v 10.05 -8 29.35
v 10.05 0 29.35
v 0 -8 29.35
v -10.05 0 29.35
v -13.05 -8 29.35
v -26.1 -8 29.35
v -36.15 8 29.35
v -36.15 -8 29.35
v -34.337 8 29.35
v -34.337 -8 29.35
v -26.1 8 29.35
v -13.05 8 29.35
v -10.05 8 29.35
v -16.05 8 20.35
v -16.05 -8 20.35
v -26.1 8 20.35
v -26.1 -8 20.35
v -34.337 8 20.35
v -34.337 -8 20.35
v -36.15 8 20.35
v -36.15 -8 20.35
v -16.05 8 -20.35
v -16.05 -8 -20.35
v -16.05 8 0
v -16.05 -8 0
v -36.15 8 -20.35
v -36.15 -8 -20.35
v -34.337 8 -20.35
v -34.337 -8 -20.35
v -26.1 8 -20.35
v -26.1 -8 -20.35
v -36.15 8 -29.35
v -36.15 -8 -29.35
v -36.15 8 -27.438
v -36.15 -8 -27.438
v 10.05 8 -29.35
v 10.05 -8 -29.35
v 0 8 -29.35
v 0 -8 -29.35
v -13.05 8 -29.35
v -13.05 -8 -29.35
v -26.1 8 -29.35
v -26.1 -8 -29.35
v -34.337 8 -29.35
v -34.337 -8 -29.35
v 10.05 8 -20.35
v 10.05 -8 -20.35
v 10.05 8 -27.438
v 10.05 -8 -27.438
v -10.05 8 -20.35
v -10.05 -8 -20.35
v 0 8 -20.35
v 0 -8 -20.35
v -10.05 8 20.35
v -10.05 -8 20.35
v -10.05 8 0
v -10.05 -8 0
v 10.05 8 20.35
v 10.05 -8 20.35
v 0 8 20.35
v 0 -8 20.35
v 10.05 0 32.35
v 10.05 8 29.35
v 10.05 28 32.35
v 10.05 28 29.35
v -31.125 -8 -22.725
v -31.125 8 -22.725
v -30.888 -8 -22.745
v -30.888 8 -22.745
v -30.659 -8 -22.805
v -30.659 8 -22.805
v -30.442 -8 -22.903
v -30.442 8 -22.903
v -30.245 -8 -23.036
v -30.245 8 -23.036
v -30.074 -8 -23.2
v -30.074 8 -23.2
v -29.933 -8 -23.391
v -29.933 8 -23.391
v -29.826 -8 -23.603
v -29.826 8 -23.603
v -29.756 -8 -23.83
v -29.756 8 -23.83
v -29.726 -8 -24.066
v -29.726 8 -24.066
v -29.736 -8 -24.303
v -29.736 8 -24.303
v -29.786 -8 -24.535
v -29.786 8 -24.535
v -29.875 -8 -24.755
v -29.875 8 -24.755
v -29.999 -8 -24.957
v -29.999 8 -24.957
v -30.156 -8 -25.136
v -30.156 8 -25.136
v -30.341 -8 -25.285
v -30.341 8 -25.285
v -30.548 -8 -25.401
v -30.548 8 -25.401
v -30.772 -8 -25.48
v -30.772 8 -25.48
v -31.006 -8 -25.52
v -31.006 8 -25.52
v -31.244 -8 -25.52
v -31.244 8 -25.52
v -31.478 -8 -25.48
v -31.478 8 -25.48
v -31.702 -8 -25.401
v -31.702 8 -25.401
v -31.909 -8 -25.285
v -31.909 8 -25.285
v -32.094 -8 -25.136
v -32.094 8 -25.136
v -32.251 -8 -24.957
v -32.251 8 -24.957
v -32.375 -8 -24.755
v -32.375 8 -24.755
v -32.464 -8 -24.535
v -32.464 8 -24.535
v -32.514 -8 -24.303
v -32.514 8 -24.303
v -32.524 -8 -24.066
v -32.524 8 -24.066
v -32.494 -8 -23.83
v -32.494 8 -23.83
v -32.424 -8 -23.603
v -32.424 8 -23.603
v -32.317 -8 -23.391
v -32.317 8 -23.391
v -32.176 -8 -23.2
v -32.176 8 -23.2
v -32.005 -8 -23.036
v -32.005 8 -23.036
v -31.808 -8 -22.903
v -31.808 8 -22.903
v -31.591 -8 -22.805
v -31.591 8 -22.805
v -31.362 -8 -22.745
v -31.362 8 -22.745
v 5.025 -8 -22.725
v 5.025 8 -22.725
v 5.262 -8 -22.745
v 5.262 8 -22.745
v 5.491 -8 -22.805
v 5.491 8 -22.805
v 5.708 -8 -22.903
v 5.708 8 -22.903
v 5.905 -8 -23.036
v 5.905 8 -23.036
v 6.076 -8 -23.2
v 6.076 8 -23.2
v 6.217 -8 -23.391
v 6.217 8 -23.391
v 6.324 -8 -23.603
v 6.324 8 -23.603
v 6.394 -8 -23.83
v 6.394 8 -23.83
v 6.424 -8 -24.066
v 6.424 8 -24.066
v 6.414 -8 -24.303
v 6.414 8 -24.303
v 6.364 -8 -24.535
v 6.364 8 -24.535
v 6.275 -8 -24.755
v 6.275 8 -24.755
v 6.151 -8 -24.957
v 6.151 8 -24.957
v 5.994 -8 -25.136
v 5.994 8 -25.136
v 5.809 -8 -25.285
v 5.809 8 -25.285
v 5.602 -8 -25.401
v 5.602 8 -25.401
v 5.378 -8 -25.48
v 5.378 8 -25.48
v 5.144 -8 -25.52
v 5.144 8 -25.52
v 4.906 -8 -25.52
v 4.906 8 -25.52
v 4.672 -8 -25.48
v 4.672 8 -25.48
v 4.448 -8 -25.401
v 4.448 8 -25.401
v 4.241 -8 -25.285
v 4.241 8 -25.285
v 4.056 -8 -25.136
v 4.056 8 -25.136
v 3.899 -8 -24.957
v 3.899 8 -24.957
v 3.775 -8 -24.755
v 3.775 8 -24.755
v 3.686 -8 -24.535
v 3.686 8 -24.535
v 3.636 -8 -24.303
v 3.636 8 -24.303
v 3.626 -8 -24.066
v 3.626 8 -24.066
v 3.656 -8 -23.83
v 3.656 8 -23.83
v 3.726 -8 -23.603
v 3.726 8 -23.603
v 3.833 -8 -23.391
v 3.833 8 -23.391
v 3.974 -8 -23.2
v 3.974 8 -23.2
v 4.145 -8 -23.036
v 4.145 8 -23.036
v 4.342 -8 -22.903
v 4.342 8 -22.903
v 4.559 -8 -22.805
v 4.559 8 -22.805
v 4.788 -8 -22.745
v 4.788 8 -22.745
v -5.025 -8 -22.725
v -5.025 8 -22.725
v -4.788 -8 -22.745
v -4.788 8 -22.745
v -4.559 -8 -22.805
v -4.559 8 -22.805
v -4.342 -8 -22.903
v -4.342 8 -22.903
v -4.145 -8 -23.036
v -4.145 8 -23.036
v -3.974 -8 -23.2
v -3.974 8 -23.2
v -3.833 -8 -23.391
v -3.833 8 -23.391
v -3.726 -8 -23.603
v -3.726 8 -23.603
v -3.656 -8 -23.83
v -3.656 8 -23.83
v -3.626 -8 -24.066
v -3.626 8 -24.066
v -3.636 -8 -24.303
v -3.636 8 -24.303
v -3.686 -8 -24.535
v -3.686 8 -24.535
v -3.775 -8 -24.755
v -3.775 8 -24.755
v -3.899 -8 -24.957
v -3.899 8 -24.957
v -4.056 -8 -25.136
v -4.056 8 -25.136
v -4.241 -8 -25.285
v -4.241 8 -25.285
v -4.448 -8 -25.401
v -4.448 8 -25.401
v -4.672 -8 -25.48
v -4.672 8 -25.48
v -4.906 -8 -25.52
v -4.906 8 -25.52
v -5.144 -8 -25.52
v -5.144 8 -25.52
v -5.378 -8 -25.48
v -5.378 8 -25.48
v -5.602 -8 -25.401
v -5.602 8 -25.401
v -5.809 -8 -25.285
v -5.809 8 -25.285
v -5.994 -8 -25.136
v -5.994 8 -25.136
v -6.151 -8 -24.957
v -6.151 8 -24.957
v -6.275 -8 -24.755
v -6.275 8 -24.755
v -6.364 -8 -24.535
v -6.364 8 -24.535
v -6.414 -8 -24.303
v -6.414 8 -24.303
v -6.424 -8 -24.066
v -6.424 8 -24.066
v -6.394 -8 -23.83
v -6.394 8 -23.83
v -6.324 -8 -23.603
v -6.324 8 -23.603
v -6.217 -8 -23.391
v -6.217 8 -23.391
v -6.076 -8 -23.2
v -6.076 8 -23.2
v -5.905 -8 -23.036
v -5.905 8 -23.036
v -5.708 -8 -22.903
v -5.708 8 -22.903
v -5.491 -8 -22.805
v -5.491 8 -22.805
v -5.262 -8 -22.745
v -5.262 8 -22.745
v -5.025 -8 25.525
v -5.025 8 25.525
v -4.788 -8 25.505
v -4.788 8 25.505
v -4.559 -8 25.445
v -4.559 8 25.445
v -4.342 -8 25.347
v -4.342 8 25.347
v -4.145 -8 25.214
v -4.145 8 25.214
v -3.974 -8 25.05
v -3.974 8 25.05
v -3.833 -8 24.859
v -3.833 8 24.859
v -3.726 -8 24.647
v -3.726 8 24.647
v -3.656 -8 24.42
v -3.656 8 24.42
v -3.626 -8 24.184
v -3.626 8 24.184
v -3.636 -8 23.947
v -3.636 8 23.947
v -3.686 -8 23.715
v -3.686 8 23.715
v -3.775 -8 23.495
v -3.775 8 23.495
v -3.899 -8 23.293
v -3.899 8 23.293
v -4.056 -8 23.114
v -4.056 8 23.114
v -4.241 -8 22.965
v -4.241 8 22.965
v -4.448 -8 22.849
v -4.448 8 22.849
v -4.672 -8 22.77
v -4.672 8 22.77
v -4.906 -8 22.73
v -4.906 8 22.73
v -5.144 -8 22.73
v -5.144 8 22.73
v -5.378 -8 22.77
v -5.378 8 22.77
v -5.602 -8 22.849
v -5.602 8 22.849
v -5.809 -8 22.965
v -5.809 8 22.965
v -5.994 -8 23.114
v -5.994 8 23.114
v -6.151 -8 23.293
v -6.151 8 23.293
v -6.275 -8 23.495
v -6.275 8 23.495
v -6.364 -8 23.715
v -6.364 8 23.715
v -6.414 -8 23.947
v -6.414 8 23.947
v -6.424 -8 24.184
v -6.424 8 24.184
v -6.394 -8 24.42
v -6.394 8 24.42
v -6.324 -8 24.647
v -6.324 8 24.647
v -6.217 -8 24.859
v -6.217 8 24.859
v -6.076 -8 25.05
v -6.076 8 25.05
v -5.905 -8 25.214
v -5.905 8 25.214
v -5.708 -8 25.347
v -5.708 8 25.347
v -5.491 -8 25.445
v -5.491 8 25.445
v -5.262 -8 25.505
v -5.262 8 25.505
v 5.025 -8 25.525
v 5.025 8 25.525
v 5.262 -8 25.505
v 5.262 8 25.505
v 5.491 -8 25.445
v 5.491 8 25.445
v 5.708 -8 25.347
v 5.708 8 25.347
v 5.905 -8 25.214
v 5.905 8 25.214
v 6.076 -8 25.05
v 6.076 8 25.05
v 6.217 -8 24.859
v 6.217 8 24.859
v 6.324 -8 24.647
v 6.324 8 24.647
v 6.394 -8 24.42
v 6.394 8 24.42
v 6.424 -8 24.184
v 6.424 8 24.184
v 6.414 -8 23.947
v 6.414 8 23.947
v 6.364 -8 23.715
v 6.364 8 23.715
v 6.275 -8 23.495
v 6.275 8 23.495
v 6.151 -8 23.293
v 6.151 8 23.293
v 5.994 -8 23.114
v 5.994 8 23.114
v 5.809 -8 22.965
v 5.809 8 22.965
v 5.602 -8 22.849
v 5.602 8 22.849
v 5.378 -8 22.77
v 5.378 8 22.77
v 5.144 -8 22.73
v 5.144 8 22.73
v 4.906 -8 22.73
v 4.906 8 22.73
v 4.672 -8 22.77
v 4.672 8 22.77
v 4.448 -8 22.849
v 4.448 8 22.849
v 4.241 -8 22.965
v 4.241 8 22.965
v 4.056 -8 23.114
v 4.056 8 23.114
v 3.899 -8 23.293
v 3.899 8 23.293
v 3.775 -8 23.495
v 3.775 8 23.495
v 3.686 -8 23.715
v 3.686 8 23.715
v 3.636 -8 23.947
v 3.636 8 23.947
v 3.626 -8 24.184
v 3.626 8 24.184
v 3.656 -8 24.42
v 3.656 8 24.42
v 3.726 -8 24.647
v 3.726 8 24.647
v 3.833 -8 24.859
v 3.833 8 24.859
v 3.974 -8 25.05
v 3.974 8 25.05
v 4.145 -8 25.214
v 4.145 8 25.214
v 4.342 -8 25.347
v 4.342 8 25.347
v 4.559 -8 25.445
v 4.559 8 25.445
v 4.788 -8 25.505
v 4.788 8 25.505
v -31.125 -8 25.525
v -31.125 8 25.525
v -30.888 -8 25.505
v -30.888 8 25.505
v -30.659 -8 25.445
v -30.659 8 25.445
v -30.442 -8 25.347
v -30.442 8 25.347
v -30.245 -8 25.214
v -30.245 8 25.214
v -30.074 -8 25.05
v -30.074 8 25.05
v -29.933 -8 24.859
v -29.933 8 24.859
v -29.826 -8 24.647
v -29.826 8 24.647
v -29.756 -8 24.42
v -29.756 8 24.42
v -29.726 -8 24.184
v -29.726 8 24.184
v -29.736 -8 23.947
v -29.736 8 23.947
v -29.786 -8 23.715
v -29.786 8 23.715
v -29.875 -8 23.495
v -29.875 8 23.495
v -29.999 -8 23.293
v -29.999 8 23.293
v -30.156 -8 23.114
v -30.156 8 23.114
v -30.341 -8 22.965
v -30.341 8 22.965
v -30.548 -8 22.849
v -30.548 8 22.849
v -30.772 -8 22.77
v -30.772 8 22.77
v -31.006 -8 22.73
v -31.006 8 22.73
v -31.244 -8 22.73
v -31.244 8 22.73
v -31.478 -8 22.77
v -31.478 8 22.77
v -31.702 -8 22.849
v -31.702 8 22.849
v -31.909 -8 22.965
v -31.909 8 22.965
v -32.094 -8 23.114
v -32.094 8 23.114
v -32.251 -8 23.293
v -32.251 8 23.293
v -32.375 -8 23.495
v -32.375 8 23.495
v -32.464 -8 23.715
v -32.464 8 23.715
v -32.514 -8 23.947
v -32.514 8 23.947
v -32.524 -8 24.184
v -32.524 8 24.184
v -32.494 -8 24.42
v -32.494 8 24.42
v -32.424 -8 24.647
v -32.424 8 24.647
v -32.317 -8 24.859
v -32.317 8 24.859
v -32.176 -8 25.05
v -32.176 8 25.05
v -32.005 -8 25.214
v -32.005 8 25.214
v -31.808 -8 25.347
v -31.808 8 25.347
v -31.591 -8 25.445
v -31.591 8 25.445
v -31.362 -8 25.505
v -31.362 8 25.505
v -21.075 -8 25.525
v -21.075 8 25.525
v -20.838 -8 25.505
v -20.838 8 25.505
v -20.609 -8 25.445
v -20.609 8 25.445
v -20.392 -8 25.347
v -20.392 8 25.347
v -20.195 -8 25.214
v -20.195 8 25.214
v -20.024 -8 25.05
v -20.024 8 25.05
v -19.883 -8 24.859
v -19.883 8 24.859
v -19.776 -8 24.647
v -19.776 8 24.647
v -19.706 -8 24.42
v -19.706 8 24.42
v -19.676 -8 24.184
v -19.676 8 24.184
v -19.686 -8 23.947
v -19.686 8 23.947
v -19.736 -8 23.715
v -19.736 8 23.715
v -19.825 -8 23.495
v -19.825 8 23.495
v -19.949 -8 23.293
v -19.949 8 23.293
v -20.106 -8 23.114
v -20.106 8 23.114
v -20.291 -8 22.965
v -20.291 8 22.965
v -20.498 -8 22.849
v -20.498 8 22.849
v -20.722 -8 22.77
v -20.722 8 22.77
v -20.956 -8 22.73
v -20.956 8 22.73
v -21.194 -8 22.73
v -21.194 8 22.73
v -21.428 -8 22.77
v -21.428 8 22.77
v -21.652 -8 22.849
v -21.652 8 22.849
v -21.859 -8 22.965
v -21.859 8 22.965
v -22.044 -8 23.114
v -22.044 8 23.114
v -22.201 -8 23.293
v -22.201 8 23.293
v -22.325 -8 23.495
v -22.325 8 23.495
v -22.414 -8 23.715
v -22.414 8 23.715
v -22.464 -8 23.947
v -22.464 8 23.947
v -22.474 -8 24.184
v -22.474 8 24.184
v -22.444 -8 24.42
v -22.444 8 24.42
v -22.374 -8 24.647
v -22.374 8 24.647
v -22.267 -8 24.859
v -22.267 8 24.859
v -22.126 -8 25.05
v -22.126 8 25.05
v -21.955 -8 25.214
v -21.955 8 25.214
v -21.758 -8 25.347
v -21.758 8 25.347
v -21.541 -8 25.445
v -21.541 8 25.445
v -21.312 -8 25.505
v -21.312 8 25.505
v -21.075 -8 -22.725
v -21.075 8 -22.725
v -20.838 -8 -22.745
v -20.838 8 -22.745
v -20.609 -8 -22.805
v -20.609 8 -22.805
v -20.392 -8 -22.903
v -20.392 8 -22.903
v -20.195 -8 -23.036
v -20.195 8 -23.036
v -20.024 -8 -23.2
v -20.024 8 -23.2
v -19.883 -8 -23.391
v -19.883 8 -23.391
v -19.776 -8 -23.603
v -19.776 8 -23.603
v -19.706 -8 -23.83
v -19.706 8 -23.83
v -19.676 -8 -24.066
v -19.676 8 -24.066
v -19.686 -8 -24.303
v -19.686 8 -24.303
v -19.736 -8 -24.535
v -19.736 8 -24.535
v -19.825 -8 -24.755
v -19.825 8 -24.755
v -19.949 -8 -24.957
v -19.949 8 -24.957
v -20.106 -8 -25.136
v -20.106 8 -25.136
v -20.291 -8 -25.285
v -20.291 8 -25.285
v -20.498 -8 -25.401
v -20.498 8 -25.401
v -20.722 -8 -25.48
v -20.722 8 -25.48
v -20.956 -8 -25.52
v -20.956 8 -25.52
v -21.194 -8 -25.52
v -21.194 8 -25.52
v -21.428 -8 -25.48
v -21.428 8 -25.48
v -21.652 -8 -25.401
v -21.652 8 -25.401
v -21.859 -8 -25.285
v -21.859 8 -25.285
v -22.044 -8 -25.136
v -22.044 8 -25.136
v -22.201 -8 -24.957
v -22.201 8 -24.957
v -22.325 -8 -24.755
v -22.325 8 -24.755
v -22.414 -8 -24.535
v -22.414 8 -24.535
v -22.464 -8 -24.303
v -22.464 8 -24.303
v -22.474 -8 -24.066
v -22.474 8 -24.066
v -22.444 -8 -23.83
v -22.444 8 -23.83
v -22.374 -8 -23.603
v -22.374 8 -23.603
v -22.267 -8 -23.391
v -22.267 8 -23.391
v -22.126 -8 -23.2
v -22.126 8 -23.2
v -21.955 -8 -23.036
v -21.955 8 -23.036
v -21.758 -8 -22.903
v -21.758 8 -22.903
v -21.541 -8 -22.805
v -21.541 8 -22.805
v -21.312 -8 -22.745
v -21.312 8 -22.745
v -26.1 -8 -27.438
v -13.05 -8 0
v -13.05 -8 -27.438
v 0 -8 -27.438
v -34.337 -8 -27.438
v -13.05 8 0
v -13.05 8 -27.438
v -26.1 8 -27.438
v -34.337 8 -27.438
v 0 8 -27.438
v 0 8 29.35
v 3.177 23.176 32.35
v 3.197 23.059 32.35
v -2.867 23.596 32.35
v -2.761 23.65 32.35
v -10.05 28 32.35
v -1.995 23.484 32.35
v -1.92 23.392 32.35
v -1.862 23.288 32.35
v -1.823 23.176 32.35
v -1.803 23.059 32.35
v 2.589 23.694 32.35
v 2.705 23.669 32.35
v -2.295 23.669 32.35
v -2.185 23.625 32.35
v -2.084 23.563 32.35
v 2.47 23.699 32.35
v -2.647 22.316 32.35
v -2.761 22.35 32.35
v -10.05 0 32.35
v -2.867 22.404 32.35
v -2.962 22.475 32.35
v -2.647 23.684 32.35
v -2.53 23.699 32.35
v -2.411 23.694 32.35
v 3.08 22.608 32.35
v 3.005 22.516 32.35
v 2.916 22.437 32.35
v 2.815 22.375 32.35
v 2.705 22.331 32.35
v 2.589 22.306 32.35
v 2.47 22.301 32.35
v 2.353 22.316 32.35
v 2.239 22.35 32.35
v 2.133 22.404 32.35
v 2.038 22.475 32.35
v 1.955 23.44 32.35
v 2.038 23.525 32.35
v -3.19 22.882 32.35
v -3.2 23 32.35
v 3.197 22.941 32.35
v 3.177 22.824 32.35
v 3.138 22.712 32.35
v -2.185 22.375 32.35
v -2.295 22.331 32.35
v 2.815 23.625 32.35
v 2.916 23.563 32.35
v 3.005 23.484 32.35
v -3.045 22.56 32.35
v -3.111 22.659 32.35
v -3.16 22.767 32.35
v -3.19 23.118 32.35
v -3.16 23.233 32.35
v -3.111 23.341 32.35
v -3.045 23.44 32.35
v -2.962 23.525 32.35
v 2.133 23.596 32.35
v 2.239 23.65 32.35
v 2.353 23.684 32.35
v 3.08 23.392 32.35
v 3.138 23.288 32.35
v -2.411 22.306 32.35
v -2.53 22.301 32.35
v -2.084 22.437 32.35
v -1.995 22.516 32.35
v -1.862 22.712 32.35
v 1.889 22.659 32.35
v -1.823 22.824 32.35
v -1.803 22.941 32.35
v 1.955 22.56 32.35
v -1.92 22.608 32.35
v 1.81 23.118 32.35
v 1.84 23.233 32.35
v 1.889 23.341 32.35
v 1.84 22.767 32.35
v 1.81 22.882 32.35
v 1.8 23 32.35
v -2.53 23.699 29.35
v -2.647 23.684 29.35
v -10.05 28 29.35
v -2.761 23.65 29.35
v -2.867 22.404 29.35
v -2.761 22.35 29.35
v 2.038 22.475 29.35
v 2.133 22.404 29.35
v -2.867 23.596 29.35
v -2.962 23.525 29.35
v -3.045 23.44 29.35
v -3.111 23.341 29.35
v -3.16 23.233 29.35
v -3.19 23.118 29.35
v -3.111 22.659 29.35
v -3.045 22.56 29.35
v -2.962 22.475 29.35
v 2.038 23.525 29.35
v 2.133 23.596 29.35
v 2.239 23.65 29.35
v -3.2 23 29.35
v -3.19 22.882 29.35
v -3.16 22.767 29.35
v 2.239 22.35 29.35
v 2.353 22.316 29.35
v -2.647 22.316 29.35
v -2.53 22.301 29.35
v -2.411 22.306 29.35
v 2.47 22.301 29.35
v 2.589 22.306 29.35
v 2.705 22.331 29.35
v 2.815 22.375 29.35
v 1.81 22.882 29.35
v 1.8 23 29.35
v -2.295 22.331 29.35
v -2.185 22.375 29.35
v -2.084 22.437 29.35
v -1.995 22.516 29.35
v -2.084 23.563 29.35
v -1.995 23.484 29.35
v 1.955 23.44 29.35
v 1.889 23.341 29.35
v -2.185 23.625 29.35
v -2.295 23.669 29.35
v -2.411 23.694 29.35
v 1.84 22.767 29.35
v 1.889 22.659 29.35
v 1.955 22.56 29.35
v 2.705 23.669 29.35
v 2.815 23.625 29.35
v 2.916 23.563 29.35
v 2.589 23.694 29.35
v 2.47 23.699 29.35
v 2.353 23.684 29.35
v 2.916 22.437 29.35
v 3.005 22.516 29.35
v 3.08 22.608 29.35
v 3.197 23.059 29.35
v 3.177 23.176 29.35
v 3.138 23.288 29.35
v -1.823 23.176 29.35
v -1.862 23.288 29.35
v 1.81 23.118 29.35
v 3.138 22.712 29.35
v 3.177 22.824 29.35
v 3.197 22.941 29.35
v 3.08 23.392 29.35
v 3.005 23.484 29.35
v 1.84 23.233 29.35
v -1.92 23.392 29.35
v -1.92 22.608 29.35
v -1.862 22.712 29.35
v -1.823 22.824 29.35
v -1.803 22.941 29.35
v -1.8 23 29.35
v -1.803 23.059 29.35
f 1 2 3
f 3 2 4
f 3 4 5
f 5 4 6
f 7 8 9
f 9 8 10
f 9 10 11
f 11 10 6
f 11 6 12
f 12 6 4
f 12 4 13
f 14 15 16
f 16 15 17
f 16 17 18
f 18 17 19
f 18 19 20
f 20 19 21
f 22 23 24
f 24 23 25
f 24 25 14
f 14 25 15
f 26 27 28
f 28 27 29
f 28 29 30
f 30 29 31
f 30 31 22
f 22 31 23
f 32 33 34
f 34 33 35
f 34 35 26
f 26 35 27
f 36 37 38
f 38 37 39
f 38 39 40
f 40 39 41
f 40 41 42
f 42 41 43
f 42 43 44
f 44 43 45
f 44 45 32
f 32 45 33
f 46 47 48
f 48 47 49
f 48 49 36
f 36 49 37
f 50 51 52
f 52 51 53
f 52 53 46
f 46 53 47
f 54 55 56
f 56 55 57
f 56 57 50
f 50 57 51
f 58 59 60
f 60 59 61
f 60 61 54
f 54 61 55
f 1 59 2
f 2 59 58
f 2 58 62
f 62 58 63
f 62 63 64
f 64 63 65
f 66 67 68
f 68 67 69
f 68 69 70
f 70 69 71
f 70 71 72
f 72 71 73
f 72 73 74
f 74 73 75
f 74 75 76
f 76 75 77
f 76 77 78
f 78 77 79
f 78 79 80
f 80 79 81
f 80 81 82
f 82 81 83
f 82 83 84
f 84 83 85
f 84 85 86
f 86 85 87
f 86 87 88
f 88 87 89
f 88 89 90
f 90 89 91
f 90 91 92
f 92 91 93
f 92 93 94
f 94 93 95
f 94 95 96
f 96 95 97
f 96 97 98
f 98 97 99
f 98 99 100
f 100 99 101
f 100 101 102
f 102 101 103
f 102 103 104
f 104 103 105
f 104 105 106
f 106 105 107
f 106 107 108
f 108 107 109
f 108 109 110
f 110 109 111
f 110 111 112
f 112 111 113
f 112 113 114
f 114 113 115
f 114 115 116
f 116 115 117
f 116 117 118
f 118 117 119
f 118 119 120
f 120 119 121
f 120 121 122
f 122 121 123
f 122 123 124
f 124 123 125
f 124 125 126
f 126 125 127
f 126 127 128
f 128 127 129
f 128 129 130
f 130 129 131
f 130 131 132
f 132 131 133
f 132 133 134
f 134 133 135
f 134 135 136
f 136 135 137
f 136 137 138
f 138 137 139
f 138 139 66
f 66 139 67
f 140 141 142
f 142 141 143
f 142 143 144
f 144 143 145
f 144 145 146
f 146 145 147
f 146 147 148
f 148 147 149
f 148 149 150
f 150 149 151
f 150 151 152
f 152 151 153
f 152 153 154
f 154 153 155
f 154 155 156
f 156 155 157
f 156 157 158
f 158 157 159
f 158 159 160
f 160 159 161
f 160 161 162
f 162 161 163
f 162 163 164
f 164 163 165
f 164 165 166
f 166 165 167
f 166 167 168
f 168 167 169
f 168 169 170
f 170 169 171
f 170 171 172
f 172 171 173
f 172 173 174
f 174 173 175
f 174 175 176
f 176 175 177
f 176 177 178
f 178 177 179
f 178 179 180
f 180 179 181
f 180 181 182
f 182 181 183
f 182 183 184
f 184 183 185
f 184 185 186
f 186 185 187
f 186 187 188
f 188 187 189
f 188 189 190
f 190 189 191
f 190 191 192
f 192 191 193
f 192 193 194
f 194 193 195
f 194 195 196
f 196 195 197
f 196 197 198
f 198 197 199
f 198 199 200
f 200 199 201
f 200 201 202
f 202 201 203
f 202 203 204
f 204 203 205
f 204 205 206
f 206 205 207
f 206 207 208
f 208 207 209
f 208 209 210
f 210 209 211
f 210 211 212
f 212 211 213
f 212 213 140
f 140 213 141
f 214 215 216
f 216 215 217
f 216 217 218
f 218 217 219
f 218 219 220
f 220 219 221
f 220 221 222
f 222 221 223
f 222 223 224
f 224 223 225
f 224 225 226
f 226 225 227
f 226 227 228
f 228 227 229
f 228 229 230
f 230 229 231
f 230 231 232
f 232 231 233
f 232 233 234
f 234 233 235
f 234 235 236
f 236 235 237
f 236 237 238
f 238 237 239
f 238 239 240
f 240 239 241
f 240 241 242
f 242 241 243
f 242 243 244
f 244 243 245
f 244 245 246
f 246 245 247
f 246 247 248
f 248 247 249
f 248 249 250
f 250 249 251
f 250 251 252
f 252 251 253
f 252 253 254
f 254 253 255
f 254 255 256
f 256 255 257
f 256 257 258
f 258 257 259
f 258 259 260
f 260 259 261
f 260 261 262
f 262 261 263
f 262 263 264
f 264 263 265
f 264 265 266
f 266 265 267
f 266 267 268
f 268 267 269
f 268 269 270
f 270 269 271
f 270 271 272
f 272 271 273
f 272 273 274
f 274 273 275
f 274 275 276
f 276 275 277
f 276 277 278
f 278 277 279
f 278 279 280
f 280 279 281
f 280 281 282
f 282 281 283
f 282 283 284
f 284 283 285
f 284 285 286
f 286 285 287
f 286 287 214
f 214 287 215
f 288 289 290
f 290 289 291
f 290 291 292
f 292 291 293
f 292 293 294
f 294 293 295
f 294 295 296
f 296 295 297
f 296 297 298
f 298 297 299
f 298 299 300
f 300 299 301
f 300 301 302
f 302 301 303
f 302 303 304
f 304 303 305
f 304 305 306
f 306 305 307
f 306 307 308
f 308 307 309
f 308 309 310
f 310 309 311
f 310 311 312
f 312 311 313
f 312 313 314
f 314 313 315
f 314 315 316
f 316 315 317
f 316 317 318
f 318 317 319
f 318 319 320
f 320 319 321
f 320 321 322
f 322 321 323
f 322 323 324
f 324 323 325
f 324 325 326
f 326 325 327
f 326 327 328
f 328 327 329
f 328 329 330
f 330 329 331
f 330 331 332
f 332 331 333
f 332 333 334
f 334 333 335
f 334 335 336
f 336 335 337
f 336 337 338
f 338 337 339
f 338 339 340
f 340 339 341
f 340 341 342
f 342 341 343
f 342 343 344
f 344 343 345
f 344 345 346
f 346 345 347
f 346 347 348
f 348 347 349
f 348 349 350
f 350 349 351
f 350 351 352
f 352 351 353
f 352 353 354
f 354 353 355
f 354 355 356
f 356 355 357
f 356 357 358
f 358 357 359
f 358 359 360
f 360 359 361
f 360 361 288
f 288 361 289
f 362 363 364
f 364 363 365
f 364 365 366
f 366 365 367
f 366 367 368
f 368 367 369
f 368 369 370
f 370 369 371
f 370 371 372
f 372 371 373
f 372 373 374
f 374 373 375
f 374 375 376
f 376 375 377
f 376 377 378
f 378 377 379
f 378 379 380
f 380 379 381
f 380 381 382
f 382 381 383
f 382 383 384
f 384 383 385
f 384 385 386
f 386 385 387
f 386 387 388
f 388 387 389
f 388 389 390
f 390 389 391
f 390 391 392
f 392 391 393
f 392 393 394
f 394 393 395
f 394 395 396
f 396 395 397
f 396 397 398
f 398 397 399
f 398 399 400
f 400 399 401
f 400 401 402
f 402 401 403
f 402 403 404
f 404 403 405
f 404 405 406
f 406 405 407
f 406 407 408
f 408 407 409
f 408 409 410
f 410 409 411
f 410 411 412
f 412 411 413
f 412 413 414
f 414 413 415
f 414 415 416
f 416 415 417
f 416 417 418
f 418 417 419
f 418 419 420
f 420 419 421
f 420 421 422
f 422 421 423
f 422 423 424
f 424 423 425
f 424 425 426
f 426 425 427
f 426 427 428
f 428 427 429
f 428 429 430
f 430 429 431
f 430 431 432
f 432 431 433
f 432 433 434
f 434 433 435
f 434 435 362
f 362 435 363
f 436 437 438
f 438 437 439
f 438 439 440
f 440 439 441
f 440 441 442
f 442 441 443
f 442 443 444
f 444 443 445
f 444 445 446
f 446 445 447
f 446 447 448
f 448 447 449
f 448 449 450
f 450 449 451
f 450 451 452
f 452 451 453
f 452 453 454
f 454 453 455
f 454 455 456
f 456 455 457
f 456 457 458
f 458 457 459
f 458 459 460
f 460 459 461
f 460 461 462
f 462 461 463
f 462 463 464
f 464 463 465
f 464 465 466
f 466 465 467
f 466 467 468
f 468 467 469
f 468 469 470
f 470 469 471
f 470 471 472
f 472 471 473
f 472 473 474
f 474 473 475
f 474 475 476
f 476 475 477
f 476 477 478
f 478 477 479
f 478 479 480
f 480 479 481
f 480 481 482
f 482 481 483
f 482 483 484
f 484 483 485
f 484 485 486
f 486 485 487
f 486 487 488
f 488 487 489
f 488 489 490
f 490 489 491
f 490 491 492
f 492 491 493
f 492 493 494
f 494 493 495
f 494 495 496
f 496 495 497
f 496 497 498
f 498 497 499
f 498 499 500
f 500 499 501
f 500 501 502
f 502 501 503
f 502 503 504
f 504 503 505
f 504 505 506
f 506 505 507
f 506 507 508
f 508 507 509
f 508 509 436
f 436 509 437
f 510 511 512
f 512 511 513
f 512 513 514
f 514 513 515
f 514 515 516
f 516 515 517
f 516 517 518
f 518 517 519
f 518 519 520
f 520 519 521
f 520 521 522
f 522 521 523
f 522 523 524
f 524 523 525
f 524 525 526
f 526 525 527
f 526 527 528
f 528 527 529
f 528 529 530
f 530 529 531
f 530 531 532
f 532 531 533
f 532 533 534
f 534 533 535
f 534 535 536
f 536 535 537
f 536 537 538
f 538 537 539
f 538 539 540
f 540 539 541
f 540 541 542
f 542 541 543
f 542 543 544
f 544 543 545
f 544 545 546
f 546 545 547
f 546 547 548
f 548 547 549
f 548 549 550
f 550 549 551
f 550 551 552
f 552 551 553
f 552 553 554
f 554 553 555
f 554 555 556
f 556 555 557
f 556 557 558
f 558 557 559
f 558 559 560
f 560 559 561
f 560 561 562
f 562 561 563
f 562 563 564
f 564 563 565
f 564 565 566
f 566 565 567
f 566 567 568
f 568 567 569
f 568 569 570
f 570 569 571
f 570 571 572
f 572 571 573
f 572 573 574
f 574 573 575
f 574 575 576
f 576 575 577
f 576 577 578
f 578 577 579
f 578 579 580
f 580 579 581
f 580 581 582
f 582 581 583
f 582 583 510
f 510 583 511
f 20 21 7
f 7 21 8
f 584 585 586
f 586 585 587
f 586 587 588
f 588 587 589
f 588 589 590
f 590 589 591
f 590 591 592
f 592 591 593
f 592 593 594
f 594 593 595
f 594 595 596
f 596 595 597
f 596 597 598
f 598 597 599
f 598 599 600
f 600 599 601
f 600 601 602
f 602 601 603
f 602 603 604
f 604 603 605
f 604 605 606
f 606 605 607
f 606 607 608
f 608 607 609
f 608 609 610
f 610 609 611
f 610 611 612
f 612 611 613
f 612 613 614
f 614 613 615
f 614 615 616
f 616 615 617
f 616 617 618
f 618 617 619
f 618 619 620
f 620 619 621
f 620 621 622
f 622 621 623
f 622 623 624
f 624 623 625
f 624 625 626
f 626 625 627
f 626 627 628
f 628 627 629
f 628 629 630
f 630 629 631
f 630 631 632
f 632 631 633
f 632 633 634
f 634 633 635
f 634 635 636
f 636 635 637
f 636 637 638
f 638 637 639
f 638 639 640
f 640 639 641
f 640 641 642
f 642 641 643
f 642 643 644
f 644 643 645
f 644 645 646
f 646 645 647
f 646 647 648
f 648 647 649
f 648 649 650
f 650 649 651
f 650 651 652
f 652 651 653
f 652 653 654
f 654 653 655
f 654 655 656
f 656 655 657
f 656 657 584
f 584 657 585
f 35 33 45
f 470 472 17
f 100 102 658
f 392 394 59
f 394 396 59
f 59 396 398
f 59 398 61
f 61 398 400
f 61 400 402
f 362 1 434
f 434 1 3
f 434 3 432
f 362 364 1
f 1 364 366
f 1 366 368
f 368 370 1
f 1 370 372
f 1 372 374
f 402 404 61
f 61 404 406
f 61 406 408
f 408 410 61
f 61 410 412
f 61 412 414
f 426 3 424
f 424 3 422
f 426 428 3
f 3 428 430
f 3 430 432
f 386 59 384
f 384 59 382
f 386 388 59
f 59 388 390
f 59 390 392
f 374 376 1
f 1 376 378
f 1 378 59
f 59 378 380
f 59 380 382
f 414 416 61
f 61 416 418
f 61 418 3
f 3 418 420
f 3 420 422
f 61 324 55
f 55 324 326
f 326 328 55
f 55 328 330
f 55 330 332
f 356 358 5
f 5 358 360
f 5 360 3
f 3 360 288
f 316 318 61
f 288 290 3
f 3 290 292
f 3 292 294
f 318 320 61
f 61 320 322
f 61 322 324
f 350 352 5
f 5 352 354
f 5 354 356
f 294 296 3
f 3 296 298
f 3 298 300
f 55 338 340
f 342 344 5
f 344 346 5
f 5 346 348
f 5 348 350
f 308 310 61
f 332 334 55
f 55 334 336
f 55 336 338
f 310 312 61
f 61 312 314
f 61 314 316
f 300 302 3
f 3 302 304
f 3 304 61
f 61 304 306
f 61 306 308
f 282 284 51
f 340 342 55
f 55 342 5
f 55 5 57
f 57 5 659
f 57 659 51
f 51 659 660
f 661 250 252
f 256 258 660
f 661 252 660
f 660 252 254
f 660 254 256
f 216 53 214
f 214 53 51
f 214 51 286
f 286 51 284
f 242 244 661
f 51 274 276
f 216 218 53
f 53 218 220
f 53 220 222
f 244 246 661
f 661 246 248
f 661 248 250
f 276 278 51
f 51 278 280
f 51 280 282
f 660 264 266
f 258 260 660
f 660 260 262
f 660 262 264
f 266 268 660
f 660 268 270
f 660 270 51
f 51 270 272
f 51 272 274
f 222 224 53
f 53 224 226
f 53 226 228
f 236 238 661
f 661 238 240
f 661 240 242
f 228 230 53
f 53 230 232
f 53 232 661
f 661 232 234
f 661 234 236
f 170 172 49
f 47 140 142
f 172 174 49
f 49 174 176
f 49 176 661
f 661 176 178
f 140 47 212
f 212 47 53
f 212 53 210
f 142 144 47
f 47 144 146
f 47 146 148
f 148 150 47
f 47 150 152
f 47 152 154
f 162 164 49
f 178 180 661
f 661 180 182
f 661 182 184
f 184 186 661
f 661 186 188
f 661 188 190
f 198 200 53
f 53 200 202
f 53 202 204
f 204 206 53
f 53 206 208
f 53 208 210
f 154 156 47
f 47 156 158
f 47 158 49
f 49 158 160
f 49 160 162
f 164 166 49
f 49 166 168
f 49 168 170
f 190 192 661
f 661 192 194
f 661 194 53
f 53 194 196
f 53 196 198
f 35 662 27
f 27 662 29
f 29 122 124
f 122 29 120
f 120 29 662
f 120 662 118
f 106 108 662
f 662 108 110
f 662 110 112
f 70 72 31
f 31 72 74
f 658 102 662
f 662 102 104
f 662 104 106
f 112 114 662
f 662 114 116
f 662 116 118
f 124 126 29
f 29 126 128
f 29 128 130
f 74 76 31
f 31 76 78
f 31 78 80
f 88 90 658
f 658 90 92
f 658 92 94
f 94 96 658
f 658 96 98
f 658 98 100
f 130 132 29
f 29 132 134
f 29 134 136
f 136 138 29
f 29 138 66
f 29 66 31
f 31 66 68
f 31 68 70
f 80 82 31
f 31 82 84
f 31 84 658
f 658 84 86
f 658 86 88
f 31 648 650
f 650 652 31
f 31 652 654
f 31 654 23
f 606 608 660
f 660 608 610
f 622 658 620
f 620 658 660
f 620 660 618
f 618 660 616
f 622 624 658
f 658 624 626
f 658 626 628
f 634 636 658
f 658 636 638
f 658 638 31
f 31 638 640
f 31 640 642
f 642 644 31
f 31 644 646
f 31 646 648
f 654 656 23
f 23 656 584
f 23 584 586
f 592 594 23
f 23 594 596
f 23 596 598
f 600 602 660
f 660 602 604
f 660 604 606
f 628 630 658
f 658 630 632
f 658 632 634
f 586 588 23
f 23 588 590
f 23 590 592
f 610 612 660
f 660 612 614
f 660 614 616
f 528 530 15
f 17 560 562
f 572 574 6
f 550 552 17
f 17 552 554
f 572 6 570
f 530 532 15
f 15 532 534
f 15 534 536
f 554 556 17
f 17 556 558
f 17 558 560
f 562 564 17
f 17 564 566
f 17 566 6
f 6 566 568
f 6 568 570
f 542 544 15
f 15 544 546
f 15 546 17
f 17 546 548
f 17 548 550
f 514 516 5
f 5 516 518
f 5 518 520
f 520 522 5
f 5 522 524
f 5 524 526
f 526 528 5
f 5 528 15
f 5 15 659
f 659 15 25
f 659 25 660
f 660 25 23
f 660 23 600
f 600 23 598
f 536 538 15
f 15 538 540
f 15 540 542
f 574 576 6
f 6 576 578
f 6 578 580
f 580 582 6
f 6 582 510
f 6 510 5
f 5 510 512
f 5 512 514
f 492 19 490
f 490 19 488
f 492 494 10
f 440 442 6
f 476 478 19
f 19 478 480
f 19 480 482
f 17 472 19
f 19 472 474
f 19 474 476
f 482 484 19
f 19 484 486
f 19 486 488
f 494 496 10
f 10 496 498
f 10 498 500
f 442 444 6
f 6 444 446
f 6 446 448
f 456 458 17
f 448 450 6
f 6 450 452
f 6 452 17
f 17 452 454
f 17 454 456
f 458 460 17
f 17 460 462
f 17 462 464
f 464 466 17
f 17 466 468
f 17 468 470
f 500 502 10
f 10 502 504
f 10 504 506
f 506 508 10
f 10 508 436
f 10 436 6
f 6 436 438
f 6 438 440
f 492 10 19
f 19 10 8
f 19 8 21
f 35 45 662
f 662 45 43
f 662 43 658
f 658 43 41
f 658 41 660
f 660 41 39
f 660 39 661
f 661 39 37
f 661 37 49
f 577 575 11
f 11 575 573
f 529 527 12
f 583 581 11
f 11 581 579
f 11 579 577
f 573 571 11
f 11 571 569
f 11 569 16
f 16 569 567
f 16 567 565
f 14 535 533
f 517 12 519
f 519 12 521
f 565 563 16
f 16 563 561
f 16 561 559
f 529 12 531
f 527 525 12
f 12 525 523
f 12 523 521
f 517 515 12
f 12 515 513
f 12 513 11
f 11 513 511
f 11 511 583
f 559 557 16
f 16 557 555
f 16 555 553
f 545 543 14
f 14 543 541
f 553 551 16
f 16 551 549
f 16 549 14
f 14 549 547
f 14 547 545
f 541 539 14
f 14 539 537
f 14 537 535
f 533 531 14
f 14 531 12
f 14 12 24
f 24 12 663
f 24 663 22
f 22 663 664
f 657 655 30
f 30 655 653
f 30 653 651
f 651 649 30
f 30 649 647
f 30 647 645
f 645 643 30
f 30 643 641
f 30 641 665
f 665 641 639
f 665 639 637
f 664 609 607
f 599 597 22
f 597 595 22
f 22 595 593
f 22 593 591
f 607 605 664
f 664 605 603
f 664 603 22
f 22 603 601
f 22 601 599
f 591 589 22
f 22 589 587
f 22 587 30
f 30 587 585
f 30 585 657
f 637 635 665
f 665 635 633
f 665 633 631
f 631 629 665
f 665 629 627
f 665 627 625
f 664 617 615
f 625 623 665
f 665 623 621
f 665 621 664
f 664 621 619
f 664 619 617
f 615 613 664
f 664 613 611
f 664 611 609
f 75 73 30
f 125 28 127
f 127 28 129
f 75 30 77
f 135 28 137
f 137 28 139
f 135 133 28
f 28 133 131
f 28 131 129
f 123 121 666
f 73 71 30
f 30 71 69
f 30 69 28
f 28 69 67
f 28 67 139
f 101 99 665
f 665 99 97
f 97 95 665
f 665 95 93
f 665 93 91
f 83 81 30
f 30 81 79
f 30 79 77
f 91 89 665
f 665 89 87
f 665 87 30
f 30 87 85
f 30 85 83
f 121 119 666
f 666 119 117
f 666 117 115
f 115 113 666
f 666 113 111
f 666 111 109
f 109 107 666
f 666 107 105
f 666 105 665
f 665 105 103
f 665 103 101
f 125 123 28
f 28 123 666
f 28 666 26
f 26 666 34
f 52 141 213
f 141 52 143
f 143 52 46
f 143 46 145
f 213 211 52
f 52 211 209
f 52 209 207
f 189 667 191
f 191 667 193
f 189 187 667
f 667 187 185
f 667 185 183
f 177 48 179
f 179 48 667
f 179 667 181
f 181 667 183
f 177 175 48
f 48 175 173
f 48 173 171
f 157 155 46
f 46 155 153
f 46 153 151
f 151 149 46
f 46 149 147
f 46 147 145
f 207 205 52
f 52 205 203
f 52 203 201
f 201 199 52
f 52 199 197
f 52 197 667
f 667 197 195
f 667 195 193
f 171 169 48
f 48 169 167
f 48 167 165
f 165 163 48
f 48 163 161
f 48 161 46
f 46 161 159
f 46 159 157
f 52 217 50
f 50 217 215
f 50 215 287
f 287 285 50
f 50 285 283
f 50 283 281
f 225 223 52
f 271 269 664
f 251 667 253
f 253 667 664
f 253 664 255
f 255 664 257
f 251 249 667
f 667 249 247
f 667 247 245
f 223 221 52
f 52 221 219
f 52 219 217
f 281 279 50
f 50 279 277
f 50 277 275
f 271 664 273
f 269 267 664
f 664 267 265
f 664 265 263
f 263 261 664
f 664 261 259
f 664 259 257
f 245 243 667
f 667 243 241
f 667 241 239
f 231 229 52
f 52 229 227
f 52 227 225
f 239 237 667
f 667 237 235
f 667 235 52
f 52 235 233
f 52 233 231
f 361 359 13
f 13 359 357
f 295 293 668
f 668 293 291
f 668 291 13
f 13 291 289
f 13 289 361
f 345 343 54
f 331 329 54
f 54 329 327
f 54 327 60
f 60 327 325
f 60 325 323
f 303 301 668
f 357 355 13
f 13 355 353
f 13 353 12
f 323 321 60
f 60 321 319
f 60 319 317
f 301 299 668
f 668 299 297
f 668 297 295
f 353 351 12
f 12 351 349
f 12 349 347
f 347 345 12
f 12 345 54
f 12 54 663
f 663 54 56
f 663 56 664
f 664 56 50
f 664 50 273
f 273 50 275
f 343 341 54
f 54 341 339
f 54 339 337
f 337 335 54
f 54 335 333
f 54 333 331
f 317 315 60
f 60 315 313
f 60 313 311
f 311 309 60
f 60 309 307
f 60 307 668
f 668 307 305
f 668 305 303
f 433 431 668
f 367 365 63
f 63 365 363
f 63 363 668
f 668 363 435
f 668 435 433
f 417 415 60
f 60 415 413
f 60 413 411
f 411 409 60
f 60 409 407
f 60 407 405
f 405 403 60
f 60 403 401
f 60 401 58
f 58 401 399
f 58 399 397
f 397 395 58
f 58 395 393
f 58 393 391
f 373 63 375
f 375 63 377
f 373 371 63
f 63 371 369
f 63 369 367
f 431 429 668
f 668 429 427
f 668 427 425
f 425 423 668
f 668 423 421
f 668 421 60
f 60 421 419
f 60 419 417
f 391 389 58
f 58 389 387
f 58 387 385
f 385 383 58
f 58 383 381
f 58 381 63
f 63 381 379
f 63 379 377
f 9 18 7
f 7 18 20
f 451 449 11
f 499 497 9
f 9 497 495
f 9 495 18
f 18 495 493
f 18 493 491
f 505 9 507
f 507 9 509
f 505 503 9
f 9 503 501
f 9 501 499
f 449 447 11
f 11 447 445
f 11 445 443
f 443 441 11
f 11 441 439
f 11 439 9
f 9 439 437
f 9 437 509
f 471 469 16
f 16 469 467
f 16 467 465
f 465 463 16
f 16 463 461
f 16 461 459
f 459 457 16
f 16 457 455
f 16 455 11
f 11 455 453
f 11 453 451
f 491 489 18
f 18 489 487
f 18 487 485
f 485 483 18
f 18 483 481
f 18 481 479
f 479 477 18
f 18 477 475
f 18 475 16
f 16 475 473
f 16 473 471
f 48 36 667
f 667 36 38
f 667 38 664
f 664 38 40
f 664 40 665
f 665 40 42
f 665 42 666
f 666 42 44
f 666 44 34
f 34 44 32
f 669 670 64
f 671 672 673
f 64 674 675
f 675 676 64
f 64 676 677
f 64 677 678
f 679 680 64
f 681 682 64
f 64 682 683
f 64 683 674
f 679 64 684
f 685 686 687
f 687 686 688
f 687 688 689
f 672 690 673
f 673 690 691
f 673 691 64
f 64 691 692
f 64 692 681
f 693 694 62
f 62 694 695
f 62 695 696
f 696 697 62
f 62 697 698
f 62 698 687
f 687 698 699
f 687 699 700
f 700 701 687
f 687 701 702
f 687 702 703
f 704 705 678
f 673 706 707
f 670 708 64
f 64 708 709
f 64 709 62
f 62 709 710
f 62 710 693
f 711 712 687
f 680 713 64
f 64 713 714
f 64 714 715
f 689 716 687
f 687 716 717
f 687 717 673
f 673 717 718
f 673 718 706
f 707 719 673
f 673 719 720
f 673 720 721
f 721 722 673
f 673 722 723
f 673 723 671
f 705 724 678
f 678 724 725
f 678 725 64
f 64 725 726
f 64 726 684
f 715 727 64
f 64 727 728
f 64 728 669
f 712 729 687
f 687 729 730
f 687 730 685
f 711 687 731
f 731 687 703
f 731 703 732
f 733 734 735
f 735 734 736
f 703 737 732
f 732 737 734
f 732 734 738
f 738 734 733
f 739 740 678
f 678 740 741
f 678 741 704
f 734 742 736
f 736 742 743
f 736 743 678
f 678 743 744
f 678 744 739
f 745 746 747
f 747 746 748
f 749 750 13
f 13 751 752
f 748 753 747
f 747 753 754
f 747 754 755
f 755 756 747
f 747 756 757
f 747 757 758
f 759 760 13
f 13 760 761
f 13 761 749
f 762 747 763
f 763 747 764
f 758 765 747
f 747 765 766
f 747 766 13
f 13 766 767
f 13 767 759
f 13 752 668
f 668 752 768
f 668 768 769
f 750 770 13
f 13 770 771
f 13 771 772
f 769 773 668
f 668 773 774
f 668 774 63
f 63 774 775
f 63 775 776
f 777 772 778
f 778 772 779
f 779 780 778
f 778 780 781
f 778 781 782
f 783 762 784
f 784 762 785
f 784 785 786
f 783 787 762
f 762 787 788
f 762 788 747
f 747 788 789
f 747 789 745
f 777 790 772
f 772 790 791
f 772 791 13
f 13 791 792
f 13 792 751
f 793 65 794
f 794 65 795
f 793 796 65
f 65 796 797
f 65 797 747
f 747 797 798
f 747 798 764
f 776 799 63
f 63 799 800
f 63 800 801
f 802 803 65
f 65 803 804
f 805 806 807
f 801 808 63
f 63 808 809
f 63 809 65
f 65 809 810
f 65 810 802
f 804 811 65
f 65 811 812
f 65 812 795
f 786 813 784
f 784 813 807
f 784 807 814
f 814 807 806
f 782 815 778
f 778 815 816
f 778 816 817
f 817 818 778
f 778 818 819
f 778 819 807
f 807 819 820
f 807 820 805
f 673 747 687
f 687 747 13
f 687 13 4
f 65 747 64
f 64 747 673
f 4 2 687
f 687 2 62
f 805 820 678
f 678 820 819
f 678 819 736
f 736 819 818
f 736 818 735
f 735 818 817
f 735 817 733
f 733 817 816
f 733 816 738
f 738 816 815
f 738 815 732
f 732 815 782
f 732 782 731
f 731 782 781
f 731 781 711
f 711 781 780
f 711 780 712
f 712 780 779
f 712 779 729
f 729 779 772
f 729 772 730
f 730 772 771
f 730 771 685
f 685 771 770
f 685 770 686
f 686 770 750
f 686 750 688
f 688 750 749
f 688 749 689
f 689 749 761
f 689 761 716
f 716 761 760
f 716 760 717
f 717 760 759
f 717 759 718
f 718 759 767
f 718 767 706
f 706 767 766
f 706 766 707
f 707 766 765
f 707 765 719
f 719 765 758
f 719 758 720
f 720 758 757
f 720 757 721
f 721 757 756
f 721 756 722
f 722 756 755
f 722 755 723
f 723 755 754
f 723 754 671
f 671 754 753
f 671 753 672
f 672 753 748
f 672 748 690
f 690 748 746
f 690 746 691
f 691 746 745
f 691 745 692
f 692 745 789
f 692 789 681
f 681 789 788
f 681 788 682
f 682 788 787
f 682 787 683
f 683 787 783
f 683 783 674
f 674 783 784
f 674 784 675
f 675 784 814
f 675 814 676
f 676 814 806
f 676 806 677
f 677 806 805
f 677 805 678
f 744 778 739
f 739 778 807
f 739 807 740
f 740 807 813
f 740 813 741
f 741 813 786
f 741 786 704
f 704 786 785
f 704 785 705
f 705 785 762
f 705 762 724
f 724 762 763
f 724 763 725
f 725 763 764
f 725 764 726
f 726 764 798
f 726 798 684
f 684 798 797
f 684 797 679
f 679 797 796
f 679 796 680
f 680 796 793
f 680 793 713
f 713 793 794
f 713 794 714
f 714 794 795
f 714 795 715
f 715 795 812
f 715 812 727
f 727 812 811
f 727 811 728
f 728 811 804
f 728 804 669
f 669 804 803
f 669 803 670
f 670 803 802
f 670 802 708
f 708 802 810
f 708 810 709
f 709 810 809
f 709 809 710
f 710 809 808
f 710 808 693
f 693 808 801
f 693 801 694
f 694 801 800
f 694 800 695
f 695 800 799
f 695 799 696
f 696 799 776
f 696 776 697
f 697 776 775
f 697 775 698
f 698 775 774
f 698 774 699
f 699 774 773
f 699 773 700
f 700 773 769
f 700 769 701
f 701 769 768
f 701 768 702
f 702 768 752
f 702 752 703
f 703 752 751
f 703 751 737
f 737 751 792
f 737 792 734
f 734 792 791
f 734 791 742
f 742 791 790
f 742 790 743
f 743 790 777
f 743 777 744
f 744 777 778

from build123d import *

# Parameters (mm, degrees)
EXTRUDE_2_DEPTH      = 8
EXTRUDE_2_DEPTH_BACK = 8
SKETCH_1_R           = 1.4
SKETCH_1_4_W         = 20.1
SKETCH_1_4_H         = 3
EXTRUDE_3_DEPTH      = 28
SKETCH_3_R           = 0.7
CUT_EXTRUDE_1_DEPTH  = 28


with BuildPart() as part:
    # Эскиз1 → Бобышка-Вытянуть2 (new, two sides: drawn at the far end of the back side and taken through both)
    with BuildSketch(Plane(origin=(0, 0, 0), x_dir=(1, 0, 0), z_dir=(0, 1, 0)).offset(-EXTRUDE_2_DEPTH_BACK)):
        Polygon((10.05, -29.35), (10.05, -20.35), (-10.05, -20.35), (-10.05, 20.35), (10.05, 20.35), (10.05, 29.35), (-36.15, 29.35), (-36.15, 20.35), (-16.05, 20.35), (-16.05, -20.35), (-36.15, -20.35), (-36.15, -29.35), align=None)
        with Locations((5.025, -24.125)):
            Circle(SKETCH_1_R, mode=Mode.SUBTRACT)
        with Locations((-5.025, -24.125)):
            Circle(SKETCH_1_R, mode=Mode.SUBTRACT)
        with Locations((-21.075, -24.125)):
            Circle(SKETCH_1_R, mode=Mode.SUBTRACT)
        with Locations((-31.125, -24.125)):
            Circle(SKETCH_1_R, mode=Mode.SUBTRACT)
        with Locations((-21.075, 24.125)):
            Circle(SKETCH_1_R, mode=Mode.SUBTRACT)
        with Locations((-31.125, 24.125)):
            Circle(SKETCH_1_R, mode=Mode.SUBTRACT)
        with Locations((5.025, 24.125)):
            Circle(SKETCH_1_R, mode=Mode.SUBTRACT)
        with Locations((-5.025, 24.125)):
            Circle(SKETCH_1_R, mode=Mode.SUBTRACT)
    extrude(amount=EXTRUDE_2_DEPTH + EXTRUDE_2_DEPTH_BACK)

    # Эскиз1<4> → Бобышка-Вытянуть3 (add)
    with BuildSketch(Plane(origin=(0, 0, 0), x_dir=(1, 0, 0), z_dir=(0, 1, 0))):
        with Locations((0, -30.85)):
            Rectangle(SKETCH_1_4_W, SKETCH_1_4_H)
    extrude(amount=EXTRUDE_3_DEPTH)

    # Эскиз3 → Вырез-Вытянуть1 (cut)
    with BuildSketch(Plane(origin=(0, 0, 29.35), x_dir=(-1, 0, 0), z_dir=(0, 0, -1))):
        with Locations((-2.5, 23)):
            Circle(SKETCH_3_R)
        with Locations((2.5, 23)):
            Circle(SKETCH_3_R)
    extrude(amount=-CUT_EXTRUDE_1_DEPTH, mode=Mode.SUBTRACT)


solid = part.part
